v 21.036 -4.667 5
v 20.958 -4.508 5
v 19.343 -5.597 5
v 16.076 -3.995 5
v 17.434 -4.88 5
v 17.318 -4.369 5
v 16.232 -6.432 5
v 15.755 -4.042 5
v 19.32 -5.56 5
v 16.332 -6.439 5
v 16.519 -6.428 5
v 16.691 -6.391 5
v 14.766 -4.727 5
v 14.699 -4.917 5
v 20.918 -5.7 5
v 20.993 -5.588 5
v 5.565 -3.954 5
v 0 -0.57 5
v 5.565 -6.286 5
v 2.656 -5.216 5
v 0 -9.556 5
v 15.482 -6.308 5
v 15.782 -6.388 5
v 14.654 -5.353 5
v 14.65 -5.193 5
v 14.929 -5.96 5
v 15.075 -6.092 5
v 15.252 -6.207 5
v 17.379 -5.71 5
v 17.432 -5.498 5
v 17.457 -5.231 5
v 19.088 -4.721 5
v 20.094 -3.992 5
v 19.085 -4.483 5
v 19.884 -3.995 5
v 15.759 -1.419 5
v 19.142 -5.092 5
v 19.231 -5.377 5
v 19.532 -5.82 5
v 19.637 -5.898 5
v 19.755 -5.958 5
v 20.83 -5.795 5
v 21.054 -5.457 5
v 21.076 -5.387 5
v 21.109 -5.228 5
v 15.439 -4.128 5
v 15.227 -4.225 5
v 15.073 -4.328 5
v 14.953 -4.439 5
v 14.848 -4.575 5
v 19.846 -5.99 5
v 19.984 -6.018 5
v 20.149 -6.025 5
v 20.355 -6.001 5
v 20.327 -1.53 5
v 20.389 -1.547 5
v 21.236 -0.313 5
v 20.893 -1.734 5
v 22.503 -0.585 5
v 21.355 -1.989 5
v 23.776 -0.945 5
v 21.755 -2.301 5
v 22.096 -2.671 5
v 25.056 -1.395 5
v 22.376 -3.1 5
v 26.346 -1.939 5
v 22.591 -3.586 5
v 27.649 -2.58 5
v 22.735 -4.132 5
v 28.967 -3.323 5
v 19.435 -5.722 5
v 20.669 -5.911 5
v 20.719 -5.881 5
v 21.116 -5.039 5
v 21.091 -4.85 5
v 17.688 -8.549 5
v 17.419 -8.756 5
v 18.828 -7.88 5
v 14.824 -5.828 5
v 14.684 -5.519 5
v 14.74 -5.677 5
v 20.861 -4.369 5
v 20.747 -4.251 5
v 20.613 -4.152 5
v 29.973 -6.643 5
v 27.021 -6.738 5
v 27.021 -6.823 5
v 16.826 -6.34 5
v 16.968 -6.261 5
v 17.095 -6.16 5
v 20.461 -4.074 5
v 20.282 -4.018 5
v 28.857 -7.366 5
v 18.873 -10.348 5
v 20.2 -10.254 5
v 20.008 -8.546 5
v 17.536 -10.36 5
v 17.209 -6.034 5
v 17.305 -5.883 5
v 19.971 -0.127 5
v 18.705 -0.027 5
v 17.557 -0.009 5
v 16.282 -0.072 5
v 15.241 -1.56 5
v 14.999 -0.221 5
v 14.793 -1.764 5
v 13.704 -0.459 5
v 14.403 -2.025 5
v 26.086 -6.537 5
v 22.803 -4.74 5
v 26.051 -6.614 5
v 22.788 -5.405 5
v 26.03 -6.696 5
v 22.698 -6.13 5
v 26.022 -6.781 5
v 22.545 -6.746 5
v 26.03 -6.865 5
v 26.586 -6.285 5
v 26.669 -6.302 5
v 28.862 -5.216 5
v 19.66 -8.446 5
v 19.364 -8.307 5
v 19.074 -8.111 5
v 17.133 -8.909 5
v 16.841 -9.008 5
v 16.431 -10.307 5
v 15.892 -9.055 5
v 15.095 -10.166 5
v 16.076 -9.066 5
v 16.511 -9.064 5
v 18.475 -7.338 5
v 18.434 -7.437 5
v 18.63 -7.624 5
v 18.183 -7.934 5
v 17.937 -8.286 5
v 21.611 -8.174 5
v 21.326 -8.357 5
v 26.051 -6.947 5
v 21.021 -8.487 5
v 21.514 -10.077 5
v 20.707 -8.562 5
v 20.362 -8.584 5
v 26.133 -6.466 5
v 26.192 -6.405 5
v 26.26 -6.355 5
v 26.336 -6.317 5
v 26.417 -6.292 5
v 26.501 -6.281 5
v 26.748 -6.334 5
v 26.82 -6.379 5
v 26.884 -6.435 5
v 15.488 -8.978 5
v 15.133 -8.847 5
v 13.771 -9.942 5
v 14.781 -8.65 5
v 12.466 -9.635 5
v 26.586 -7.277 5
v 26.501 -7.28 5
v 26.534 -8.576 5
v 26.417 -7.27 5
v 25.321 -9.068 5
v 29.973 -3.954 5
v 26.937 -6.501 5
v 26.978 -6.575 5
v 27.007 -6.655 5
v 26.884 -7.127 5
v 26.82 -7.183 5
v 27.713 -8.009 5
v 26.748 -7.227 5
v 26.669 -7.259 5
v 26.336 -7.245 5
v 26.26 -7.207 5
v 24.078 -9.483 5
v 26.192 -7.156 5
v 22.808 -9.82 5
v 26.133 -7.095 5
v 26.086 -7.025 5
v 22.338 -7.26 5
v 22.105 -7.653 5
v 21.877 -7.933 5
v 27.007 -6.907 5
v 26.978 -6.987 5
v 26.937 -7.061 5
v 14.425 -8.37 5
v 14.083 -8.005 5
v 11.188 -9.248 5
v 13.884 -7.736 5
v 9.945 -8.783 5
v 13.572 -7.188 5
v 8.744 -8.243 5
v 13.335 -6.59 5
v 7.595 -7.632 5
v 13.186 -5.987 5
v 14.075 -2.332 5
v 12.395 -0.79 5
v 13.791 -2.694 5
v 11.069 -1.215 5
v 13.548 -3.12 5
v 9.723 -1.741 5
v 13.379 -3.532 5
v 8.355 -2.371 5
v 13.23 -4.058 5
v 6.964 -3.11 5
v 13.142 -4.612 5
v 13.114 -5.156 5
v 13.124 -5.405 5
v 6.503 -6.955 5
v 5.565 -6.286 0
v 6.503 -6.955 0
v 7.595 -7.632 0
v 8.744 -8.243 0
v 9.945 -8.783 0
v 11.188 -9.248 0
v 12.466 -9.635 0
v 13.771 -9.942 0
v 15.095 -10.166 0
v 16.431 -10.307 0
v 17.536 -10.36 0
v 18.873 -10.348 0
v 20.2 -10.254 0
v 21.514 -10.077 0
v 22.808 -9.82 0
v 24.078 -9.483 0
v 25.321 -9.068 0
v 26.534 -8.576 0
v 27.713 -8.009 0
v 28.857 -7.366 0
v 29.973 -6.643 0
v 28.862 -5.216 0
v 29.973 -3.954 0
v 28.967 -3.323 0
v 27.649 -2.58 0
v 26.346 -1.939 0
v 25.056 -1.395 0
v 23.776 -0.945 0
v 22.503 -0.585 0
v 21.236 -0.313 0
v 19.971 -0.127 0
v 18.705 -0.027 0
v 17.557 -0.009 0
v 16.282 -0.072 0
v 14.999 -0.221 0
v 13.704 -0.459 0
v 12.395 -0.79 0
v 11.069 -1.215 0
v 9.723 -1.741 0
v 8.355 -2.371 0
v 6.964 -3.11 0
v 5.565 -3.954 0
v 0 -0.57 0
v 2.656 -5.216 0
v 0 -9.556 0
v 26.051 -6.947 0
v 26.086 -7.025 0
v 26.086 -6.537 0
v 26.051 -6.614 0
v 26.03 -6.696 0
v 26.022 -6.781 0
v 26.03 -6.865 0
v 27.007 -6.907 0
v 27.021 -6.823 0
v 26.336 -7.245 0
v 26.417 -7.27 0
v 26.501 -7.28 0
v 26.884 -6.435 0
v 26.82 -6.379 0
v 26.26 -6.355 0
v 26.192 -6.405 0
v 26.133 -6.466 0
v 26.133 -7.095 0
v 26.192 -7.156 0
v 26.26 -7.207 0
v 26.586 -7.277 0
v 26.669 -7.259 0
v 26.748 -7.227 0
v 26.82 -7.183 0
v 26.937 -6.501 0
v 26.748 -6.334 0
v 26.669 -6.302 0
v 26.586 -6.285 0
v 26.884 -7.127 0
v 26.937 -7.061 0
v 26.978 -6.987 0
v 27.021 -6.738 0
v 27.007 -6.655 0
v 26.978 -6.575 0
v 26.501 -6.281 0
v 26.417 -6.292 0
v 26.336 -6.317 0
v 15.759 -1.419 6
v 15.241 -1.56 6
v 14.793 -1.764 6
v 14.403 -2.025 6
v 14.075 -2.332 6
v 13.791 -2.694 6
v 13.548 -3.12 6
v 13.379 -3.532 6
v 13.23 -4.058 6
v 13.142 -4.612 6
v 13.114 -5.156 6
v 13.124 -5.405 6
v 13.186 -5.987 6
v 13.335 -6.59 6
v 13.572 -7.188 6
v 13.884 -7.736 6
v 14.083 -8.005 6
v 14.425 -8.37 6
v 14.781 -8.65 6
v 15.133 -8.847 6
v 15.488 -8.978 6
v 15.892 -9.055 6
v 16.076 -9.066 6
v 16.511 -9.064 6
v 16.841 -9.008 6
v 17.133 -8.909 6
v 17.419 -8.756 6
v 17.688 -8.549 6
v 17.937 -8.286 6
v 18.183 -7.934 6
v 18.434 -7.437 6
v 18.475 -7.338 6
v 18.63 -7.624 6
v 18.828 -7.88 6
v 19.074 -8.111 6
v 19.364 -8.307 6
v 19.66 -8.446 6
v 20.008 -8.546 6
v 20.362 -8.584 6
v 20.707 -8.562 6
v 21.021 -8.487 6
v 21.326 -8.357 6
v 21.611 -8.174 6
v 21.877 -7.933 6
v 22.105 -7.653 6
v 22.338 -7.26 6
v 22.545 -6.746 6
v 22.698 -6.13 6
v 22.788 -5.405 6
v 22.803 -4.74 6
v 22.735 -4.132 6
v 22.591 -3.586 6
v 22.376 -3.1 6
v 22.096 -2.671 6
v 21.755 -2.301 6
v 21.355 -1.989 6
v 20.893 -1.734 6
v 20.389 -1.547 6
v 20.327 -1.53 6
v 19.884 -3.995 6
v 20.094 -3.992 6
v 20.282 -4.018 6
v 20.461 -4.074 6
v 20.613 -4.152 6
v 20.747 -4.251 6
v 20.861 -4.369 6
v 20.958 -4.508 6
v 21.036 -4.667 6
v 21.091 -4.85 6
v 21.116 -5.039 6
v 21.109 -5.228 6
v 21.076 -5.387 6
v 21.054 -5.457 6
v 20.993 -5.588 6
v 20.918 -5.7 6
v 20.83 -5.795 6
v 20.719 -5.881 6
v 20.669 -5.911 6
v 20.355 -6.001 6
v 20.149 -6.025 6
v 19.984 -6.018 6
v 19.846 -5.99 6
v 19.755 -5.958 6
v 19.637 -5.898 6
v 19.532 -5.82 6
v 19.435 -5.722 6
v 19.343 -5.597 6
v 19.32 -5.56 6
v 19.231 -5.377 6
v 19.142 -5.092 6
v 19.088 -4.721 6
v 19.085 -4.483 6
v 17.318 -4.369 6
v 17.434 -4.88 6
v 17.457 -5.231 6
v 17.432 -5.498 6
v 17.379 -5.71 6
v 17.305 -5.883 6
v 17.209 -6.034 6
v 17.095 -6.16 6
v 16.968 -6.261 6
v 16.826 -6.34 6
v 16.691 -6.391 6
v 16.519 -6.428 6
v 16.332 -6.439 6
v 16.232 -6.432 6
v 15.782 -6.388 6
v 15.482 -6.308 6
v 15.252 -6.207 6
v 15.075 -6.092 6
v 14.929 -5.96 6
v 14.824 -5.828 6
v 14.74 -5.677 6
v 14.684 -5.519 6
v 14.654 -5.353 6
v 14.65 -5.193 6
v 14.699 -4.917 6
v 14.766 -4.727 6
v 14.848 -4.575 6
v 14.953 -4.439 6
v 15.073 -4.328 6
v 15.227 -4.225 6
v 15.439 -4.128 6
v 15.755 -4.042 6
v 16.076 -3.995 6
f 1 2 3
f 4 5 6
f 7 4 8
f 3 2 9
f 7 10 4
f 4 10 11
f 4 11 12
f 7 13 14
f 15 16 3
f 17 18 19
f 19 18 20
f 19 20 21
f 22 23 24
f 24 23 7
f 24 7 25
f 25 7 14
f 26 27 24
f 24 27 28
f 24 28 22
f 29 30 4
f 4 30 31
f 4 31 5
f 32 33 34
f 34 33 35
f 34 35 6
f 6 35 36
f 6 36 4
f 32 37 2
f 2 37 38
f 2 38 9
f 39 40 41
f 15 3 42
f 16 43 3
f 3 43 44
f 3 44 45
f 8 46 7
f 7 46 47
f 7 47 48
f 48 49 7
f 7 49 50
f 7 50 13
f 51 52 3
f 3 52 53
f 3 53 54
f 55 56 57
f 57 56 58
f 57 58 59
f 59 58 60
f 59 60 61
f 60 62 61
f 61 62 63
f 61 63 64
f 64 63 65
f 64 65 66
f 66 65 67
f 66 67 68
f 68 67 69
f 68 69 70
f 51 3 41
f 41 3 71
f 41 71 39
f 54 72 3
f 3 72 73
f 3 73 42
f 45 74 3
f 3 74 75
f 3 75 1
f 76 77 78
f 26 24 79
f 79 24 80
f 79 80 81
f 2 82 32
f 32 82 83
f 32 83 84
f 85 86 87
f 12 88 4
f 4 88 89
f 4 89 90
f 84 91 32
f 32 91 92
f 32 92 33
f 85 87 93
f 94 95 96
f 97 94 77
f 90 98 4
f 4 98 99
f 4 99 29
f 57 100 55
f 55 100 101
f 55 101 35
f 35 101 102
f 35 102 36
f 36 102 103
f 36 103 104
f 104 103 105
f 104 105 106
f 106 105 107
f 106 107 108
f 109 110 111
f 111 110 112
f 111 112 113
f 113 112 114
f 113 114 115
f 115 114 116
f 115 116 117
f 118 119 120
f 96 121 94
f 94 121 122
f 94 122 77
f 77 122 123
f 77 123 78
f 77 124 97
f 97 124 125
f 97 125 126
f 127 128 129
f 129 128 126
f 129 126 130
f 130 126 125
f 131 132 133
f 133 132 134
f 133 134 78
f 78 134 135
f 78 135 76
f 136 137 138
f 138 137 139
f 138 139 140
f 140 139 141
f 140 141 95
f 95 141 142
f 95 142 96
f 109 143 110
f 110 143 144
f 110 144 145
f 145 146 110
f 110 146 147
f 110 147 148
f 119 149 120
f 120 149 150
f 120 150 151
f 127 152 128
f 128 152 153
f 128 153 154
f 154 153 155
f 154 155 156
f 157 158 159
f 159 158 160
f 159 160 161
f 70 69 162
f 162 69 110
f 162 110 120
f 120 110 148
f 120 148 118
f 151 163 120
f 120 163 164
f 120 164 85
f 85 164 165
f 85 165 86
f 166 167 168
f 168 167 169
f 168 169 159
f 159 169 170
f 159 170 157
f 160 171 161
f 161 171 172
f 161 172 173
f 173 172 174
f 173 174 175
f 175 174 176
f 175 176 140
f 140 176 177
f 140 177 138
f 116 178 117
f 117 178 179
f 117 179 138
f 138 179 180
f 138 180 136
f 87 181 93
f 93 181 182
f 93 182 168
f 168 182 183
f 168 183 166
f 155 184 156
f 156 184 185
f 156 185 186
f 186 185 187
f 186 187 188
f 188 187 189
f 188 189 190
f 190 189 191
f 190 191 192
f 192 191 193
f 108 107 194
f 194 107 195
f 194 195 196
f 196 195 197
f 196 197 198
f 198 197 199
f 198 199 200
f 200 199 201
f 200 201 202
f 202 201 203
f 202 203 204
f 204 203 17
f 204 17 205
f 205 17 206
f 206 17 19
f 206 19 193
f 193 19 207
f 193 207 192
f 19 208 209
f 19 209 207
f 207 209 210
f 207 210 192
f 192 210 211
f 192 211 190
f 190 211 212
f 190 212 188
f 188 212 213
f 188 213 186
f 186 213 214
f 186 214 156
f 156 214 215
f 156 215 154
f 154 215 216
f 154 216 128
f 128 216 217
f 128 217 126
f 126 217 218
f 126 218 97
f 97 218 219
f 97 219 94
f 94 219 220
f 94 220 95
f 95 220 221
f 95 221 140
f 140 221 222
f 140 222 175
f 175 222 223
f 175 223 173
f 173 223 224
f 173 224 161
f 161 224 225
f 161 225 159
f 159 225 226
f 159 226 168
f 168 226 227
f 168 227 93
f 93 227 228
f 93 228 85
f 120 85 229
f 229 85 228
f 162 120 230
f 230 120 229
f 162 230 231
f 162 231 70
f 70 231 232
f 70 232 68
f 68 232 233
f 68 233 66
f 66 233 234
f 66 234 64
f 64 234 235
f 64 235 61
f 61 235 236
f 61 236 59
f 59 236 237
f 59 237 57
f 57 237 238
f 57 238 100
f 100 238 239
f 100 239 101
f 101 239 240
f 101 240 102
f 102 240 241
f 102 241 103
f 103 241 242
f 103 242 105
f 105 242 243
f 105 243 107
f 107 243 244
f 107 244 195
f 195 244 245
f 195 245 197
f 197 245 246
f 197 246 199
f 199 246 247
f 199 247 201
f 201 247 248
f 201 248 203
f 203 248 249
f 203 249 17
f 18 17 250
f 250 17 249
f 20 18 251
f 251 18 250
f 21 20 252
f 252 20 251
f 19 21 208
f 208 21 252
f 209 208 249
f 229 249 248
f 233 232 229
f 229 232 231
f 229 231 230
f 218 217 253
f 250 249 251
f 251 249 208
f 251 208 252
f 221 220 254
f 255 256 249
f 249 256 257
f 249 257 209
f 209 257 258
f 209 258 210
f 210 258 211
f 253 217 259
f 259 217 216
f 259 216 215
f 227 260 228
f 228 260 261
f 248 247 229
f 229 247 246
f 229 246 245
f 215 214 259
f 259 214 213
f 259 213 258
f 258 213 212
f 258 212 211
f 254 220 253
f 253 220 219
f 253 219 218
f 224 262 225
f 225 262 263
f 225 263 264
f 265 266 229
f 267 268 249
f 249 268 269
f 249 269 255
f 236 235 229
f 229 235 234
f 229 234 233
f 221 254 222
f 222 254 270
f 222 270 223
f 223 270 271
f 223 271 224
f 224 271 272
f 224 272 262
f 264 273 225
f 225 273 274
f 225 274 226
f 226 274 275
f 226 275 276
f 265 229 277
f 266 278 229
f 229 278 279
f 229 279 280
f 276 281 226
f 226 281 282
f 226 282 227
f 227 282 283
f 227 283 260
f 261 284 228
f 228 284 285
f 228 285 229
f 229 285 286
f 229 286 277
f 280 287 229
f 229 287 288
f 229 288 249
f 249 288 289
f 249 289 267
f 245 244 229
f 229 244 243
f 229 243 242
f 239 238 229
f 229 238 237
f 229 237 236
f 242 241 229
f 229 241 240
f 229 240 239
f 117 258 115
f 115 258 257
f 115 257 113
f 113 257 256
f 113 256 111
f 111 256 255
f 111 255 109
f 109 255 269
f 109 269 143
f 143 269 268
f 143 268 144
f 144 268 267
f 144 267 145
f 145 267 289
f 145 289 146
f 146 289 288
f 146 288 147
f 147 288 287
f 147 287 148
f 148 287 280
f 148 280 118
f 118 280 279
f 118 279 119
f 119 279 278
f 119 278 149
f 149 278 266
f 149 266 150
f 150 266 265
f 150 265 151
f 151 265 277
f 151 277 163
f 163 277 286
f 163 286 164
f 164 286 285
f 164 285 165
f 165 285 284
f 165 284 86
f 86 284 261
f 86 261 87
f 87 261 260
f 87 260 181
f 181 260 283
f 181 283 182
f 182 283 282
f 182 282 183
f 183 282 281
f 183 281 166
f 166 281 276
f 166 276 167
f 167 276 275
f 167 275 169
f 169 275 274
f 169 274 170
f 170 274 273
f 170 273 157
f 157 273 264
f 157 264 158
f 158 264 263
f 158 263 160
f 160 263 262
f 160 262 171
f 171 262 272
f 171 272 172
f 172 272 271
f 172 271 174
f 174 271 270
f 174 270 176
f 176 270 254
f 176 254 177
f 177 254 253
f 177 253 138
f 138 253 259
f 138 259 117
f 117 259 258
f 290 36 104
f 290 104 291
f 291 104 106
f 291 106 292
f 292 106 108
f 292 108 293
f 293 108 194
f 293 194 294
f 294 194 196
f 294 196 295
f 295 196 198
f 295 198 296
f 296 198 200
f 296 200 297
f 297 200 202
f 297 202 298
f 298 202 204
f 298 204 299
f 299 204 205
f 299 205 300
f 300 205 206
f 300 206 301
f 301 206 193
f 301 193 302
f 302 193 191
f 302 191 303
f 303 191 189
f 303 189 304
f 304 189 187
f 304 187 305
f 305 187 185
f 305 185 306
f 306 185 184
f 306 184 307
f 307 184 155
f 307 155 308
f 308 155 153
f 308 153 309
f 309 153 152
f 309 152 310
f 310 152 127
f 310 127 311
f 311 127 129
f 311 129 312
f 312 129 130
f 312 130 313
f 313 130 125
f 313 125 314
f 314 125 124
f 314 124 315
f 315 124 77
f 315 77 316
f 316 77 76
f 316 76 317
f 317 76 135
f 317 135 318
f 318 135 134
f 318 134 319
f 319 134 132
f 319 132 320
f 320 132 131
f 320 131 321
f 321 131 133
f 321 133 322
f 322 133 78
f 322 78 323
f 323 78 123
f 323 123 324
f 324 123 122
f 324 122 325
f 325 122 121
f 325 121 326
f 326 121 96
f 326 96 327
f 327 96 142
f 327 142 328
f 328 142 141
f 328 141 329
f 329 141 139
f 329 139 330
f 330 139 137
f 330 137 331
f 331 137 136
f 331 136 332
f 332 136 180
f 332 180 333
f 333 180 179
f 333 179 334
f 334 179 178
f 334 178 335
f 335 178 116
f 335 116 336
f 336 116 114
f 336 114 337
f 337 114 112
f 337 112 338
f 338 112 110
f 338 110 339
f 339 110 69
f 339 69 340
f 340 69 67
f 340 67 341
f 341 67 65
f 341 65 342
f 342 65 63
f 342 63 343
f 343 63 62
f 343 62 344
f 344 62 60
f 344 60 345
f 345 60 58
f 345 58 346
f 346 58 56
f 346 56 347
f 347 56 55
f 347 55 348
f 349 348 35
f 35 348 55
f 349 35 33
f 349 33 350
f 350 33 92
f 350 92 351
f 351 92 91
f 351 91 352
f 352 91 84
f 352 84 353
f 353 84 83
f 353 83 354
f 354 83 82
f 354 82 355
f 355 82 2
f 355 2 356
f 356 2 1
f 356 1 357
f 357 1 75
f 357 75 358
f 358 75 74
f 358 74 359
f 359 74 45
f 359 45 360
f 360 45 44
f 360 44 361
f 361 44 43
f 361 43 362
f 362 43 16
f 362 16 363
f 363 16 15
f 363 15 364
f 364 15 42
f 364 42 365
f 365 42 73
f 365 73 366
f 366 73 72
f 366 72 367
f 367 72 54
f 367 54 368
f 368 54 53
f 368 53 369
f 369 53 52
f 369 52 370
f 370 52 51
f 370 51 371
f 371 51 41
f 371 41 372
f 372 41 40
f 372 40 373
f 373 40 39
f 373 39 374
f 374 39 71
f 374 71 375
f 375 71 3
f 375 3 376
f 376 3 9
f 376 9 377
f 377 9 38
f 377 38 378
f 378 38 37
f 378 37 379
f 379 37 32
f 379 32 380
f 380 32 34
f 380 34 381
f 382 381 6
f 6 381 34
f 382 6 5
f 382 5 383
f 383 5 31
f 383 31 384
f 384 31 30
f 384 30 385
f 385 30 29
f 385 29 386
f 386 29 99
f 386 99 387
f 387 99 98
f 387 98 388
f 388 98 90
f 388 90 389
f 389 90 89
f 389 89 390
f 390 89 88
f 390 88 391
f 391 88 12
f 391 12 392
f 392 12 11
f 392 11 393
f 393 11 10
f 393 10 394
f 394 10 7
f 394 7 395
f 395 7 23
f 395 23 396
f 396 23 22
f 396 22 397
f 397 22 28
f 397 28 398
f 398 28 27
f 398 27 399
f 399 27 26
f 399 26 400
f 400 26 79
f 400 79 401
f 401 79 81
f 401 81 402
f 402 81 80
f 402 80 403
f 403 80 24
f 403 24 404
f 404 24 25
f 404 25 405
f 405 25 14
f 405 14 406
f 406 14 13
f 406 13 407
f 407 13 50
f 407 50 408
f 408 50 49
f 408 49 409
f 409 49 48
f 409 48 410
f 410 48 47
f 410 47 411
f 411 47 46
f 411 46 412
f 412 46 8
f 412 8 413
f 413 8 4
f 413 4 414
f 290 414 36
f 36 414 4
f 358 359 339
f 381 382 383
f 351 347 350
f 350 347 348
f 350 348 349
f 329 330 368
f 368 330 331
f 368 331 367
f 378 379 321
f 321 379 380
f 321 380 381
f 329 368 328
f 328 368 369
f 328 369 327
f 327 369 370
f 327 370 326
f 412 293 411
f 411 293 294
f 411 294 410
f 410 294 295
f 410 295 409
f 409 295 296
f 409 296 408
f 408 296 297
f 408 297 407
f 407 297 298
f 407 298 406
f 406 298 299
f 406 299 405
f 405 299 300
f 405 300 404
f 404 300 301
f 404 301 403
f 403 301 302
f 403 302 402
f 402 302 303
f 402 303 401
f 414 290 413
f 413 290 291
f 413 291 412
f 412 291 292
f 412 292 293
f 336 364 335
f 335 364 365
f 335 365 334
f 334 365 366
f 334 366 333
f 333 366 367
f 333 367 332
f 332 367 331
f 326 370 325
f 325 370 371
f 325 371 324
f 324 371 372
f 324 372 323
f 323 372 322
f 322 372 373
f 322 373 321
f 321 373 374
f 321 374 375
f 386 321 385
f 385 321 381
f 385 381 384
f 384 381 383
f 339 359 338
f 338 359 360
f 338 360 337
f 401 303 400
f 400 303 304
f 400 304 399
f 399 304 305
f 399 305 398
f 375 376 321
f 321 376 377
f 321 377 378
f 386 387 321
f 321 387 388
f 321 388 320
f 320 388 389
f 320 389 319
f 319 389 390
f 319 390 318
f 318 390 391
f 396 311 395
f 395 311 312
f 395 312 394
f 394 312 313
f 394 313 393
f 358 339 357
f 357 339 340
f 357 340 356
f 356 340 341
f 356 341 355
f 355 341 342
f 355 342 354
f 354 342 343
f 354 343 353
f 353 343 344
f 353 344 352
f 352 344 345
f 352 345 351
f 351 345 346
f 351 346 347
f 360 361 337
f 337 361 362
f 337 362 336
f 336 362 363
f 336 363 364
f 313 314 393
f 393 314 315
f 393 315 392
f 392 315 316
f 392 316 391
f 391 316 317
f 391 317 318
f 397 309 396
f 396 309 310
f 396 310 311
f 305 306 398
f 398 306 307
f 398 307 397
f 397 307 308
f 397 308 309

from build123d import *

# Parameters (mm, degrees)
SKETCH2_R           = 0.500109693
BOSS_EXTRUDE1_DEPTH = 5
BOSS_EXTRUDE2_DEPTH = 1


with BuildPart() as part:
    # Sketch2 → Boss-Extrude1 (new body)
    with BuildSketch(Plane(origin=(0, 0, 0), x_dir=(1, 0, 0), z_dir=(0, 0, -1))):
        with BuildLine():
            Line((29.97295835, 6.642737104), (28.862437793, 5.215722686))
            Line((28.862437793, 5.215722686), (29.97295835, 3.953817374))
            add(Edge.make_bspline(
                [(5.565346412, 3.953817374), (17.919076804, -3.939717318), (29.97295835, 3.953817374)],
                knots=[0, 0, 0, 1, 1, 1], degree=2))
            Line((5.565346412, 3.953817374), (0, 0.570103483))
            Line((0, 0.570103483), (2.65645961, 5.215722686))
            Line((2.65645961, 5.215722686), (0, 9.556126627))
            Line((0, 9.556126627), (5.565346412, 6.285726684))
            add(Edge.make_bspline(
                [(5.565346412, 6.285726684), (12.037313538, 11.217277608), (22.14175538, 12.07873787), (29.97295835, 6.642737104)],
                knots=[0, 0, 0, 0, 1, 1, 1, 1], degree=3))
        make_face()
        with Locations(Location((26.5225963, 6.780666166, 0), (0, 0, 180))):
            Circle(SKETCH2_R, mode=Mode.SUBTRACT)
    extrude(amount=-BOSS_EXTRUDE1_DEPTH)

    # Sketch6 → Boss-Extrude2 (add)
    with BuildSketch(Plane(origin=(0, 0, 5), x_dir=(-1, 0, 0), z_dir=(0, 0, 1))):
        with BuildLine():
            Line((-15.759449442, 1.418953032), (-16.07584813, 3.995005952))
            add(Edge.make_bspline(
                [(-16.07584813, 3.995005952), (-15.458880746, 4.062710088), (-14.740919917, 4.238390229), (-14.650433604, 5.193040536)],
                knots=[0, 0, 0, 0, 1, 1, 1, 1], degree=3))
            add(Edge.make_bspline(
                [(-14.650433604, 5.193040536), (-14.619231687, 5.862120963), (-15.169780731, 6.414980417), (-16.232102989, 6.432436177)],
                knots=[0, 0, 0, 0, 1, 1, 1, 1], degree=3))
            add(Edge.make_bspline(
                [(-16.232102989, 6.432436177), (-17.005188221, 6.511841439), (-17.780119933, 5.869895845), (-17.317691742, 4.369140076)],
                knots=[0, 0, 0, 0, 1, 1, 1, 1], degree=3))
            Line((-17.317691742, 4.369140076), (-19.0853994, 4.482638032))
            add(Edge.make_bspline(
                [(-19.0853994, 4.482638032), (-19.056118502, 4.997195312), (-19.258203254, 6.439044313), (-20.66941937, 5.911436499)],
                knots=[0, 0, 0, 0, 1, 1, 1, 1], degree=3))
            add(Edge.make_bspline(
                [(-20.66941937, 5.911436499), (-21.486344473, 5.457892375), (-21.162251573, 3.883318696), (-19.884325096, 3.995005952)],
                knots=[0, 0, 0, 0, 1, 1, 1, 1], degree=3))
            Line((-19.884325096, 3.995005952), (-20.327479071, 1.52976102))
            add(Edge.make_bspline(
                [(-22.787674533, 5.404891959), (-22.963836678, 3.337144225), (-21.949807027, 1.978010395), (-20.327479071, 1.52976102)],
                knots=[0, 0, 0, 0, 1, 1, 1, 1], degree=3))
            add(Edge.make_bspline(
                [(-18.474874193, 7.338129926), (-19.24932143, 9.101790183), (-22.509278972, 9.429289769), (-22.787674533, 5.404891959)],
                knots=[0, 0, 0, 0, 1, 1, 1, 1], degree=3))
            add(Edge.make_bspline(
                [(-16.07584813, 9.06636742), (-17.73342296, 9.193466544), (-18.474874193, 7.338129926)],
                knots=[0, 0, 0, 1, 1, 1], degree=2))
            add(Edge.make_bspline(
                [(-13.123671188, 5.404891959), (-13.173598197, 6.971888977), (-14.244410718, 9.017312988), (-16.07584813, 9.06636742)],
                knots=[0, 0, 0, 0, 1, 1, 1, 1], degree=3))
            add(Edge.make_bspline(
                [(-15.759449442, 1.418953032), (-13.321402819, 1.889445376), (-13.053480895, 4.428709713), (-13.123671188, 5.404891959)],
                knots=[0, 0, 0, 0, 1, 1, 1, 1], degree=3))
        make_face()
    extrude(amount=BOSS_EXTRUDE2_DEPTH)


solid = part.part
